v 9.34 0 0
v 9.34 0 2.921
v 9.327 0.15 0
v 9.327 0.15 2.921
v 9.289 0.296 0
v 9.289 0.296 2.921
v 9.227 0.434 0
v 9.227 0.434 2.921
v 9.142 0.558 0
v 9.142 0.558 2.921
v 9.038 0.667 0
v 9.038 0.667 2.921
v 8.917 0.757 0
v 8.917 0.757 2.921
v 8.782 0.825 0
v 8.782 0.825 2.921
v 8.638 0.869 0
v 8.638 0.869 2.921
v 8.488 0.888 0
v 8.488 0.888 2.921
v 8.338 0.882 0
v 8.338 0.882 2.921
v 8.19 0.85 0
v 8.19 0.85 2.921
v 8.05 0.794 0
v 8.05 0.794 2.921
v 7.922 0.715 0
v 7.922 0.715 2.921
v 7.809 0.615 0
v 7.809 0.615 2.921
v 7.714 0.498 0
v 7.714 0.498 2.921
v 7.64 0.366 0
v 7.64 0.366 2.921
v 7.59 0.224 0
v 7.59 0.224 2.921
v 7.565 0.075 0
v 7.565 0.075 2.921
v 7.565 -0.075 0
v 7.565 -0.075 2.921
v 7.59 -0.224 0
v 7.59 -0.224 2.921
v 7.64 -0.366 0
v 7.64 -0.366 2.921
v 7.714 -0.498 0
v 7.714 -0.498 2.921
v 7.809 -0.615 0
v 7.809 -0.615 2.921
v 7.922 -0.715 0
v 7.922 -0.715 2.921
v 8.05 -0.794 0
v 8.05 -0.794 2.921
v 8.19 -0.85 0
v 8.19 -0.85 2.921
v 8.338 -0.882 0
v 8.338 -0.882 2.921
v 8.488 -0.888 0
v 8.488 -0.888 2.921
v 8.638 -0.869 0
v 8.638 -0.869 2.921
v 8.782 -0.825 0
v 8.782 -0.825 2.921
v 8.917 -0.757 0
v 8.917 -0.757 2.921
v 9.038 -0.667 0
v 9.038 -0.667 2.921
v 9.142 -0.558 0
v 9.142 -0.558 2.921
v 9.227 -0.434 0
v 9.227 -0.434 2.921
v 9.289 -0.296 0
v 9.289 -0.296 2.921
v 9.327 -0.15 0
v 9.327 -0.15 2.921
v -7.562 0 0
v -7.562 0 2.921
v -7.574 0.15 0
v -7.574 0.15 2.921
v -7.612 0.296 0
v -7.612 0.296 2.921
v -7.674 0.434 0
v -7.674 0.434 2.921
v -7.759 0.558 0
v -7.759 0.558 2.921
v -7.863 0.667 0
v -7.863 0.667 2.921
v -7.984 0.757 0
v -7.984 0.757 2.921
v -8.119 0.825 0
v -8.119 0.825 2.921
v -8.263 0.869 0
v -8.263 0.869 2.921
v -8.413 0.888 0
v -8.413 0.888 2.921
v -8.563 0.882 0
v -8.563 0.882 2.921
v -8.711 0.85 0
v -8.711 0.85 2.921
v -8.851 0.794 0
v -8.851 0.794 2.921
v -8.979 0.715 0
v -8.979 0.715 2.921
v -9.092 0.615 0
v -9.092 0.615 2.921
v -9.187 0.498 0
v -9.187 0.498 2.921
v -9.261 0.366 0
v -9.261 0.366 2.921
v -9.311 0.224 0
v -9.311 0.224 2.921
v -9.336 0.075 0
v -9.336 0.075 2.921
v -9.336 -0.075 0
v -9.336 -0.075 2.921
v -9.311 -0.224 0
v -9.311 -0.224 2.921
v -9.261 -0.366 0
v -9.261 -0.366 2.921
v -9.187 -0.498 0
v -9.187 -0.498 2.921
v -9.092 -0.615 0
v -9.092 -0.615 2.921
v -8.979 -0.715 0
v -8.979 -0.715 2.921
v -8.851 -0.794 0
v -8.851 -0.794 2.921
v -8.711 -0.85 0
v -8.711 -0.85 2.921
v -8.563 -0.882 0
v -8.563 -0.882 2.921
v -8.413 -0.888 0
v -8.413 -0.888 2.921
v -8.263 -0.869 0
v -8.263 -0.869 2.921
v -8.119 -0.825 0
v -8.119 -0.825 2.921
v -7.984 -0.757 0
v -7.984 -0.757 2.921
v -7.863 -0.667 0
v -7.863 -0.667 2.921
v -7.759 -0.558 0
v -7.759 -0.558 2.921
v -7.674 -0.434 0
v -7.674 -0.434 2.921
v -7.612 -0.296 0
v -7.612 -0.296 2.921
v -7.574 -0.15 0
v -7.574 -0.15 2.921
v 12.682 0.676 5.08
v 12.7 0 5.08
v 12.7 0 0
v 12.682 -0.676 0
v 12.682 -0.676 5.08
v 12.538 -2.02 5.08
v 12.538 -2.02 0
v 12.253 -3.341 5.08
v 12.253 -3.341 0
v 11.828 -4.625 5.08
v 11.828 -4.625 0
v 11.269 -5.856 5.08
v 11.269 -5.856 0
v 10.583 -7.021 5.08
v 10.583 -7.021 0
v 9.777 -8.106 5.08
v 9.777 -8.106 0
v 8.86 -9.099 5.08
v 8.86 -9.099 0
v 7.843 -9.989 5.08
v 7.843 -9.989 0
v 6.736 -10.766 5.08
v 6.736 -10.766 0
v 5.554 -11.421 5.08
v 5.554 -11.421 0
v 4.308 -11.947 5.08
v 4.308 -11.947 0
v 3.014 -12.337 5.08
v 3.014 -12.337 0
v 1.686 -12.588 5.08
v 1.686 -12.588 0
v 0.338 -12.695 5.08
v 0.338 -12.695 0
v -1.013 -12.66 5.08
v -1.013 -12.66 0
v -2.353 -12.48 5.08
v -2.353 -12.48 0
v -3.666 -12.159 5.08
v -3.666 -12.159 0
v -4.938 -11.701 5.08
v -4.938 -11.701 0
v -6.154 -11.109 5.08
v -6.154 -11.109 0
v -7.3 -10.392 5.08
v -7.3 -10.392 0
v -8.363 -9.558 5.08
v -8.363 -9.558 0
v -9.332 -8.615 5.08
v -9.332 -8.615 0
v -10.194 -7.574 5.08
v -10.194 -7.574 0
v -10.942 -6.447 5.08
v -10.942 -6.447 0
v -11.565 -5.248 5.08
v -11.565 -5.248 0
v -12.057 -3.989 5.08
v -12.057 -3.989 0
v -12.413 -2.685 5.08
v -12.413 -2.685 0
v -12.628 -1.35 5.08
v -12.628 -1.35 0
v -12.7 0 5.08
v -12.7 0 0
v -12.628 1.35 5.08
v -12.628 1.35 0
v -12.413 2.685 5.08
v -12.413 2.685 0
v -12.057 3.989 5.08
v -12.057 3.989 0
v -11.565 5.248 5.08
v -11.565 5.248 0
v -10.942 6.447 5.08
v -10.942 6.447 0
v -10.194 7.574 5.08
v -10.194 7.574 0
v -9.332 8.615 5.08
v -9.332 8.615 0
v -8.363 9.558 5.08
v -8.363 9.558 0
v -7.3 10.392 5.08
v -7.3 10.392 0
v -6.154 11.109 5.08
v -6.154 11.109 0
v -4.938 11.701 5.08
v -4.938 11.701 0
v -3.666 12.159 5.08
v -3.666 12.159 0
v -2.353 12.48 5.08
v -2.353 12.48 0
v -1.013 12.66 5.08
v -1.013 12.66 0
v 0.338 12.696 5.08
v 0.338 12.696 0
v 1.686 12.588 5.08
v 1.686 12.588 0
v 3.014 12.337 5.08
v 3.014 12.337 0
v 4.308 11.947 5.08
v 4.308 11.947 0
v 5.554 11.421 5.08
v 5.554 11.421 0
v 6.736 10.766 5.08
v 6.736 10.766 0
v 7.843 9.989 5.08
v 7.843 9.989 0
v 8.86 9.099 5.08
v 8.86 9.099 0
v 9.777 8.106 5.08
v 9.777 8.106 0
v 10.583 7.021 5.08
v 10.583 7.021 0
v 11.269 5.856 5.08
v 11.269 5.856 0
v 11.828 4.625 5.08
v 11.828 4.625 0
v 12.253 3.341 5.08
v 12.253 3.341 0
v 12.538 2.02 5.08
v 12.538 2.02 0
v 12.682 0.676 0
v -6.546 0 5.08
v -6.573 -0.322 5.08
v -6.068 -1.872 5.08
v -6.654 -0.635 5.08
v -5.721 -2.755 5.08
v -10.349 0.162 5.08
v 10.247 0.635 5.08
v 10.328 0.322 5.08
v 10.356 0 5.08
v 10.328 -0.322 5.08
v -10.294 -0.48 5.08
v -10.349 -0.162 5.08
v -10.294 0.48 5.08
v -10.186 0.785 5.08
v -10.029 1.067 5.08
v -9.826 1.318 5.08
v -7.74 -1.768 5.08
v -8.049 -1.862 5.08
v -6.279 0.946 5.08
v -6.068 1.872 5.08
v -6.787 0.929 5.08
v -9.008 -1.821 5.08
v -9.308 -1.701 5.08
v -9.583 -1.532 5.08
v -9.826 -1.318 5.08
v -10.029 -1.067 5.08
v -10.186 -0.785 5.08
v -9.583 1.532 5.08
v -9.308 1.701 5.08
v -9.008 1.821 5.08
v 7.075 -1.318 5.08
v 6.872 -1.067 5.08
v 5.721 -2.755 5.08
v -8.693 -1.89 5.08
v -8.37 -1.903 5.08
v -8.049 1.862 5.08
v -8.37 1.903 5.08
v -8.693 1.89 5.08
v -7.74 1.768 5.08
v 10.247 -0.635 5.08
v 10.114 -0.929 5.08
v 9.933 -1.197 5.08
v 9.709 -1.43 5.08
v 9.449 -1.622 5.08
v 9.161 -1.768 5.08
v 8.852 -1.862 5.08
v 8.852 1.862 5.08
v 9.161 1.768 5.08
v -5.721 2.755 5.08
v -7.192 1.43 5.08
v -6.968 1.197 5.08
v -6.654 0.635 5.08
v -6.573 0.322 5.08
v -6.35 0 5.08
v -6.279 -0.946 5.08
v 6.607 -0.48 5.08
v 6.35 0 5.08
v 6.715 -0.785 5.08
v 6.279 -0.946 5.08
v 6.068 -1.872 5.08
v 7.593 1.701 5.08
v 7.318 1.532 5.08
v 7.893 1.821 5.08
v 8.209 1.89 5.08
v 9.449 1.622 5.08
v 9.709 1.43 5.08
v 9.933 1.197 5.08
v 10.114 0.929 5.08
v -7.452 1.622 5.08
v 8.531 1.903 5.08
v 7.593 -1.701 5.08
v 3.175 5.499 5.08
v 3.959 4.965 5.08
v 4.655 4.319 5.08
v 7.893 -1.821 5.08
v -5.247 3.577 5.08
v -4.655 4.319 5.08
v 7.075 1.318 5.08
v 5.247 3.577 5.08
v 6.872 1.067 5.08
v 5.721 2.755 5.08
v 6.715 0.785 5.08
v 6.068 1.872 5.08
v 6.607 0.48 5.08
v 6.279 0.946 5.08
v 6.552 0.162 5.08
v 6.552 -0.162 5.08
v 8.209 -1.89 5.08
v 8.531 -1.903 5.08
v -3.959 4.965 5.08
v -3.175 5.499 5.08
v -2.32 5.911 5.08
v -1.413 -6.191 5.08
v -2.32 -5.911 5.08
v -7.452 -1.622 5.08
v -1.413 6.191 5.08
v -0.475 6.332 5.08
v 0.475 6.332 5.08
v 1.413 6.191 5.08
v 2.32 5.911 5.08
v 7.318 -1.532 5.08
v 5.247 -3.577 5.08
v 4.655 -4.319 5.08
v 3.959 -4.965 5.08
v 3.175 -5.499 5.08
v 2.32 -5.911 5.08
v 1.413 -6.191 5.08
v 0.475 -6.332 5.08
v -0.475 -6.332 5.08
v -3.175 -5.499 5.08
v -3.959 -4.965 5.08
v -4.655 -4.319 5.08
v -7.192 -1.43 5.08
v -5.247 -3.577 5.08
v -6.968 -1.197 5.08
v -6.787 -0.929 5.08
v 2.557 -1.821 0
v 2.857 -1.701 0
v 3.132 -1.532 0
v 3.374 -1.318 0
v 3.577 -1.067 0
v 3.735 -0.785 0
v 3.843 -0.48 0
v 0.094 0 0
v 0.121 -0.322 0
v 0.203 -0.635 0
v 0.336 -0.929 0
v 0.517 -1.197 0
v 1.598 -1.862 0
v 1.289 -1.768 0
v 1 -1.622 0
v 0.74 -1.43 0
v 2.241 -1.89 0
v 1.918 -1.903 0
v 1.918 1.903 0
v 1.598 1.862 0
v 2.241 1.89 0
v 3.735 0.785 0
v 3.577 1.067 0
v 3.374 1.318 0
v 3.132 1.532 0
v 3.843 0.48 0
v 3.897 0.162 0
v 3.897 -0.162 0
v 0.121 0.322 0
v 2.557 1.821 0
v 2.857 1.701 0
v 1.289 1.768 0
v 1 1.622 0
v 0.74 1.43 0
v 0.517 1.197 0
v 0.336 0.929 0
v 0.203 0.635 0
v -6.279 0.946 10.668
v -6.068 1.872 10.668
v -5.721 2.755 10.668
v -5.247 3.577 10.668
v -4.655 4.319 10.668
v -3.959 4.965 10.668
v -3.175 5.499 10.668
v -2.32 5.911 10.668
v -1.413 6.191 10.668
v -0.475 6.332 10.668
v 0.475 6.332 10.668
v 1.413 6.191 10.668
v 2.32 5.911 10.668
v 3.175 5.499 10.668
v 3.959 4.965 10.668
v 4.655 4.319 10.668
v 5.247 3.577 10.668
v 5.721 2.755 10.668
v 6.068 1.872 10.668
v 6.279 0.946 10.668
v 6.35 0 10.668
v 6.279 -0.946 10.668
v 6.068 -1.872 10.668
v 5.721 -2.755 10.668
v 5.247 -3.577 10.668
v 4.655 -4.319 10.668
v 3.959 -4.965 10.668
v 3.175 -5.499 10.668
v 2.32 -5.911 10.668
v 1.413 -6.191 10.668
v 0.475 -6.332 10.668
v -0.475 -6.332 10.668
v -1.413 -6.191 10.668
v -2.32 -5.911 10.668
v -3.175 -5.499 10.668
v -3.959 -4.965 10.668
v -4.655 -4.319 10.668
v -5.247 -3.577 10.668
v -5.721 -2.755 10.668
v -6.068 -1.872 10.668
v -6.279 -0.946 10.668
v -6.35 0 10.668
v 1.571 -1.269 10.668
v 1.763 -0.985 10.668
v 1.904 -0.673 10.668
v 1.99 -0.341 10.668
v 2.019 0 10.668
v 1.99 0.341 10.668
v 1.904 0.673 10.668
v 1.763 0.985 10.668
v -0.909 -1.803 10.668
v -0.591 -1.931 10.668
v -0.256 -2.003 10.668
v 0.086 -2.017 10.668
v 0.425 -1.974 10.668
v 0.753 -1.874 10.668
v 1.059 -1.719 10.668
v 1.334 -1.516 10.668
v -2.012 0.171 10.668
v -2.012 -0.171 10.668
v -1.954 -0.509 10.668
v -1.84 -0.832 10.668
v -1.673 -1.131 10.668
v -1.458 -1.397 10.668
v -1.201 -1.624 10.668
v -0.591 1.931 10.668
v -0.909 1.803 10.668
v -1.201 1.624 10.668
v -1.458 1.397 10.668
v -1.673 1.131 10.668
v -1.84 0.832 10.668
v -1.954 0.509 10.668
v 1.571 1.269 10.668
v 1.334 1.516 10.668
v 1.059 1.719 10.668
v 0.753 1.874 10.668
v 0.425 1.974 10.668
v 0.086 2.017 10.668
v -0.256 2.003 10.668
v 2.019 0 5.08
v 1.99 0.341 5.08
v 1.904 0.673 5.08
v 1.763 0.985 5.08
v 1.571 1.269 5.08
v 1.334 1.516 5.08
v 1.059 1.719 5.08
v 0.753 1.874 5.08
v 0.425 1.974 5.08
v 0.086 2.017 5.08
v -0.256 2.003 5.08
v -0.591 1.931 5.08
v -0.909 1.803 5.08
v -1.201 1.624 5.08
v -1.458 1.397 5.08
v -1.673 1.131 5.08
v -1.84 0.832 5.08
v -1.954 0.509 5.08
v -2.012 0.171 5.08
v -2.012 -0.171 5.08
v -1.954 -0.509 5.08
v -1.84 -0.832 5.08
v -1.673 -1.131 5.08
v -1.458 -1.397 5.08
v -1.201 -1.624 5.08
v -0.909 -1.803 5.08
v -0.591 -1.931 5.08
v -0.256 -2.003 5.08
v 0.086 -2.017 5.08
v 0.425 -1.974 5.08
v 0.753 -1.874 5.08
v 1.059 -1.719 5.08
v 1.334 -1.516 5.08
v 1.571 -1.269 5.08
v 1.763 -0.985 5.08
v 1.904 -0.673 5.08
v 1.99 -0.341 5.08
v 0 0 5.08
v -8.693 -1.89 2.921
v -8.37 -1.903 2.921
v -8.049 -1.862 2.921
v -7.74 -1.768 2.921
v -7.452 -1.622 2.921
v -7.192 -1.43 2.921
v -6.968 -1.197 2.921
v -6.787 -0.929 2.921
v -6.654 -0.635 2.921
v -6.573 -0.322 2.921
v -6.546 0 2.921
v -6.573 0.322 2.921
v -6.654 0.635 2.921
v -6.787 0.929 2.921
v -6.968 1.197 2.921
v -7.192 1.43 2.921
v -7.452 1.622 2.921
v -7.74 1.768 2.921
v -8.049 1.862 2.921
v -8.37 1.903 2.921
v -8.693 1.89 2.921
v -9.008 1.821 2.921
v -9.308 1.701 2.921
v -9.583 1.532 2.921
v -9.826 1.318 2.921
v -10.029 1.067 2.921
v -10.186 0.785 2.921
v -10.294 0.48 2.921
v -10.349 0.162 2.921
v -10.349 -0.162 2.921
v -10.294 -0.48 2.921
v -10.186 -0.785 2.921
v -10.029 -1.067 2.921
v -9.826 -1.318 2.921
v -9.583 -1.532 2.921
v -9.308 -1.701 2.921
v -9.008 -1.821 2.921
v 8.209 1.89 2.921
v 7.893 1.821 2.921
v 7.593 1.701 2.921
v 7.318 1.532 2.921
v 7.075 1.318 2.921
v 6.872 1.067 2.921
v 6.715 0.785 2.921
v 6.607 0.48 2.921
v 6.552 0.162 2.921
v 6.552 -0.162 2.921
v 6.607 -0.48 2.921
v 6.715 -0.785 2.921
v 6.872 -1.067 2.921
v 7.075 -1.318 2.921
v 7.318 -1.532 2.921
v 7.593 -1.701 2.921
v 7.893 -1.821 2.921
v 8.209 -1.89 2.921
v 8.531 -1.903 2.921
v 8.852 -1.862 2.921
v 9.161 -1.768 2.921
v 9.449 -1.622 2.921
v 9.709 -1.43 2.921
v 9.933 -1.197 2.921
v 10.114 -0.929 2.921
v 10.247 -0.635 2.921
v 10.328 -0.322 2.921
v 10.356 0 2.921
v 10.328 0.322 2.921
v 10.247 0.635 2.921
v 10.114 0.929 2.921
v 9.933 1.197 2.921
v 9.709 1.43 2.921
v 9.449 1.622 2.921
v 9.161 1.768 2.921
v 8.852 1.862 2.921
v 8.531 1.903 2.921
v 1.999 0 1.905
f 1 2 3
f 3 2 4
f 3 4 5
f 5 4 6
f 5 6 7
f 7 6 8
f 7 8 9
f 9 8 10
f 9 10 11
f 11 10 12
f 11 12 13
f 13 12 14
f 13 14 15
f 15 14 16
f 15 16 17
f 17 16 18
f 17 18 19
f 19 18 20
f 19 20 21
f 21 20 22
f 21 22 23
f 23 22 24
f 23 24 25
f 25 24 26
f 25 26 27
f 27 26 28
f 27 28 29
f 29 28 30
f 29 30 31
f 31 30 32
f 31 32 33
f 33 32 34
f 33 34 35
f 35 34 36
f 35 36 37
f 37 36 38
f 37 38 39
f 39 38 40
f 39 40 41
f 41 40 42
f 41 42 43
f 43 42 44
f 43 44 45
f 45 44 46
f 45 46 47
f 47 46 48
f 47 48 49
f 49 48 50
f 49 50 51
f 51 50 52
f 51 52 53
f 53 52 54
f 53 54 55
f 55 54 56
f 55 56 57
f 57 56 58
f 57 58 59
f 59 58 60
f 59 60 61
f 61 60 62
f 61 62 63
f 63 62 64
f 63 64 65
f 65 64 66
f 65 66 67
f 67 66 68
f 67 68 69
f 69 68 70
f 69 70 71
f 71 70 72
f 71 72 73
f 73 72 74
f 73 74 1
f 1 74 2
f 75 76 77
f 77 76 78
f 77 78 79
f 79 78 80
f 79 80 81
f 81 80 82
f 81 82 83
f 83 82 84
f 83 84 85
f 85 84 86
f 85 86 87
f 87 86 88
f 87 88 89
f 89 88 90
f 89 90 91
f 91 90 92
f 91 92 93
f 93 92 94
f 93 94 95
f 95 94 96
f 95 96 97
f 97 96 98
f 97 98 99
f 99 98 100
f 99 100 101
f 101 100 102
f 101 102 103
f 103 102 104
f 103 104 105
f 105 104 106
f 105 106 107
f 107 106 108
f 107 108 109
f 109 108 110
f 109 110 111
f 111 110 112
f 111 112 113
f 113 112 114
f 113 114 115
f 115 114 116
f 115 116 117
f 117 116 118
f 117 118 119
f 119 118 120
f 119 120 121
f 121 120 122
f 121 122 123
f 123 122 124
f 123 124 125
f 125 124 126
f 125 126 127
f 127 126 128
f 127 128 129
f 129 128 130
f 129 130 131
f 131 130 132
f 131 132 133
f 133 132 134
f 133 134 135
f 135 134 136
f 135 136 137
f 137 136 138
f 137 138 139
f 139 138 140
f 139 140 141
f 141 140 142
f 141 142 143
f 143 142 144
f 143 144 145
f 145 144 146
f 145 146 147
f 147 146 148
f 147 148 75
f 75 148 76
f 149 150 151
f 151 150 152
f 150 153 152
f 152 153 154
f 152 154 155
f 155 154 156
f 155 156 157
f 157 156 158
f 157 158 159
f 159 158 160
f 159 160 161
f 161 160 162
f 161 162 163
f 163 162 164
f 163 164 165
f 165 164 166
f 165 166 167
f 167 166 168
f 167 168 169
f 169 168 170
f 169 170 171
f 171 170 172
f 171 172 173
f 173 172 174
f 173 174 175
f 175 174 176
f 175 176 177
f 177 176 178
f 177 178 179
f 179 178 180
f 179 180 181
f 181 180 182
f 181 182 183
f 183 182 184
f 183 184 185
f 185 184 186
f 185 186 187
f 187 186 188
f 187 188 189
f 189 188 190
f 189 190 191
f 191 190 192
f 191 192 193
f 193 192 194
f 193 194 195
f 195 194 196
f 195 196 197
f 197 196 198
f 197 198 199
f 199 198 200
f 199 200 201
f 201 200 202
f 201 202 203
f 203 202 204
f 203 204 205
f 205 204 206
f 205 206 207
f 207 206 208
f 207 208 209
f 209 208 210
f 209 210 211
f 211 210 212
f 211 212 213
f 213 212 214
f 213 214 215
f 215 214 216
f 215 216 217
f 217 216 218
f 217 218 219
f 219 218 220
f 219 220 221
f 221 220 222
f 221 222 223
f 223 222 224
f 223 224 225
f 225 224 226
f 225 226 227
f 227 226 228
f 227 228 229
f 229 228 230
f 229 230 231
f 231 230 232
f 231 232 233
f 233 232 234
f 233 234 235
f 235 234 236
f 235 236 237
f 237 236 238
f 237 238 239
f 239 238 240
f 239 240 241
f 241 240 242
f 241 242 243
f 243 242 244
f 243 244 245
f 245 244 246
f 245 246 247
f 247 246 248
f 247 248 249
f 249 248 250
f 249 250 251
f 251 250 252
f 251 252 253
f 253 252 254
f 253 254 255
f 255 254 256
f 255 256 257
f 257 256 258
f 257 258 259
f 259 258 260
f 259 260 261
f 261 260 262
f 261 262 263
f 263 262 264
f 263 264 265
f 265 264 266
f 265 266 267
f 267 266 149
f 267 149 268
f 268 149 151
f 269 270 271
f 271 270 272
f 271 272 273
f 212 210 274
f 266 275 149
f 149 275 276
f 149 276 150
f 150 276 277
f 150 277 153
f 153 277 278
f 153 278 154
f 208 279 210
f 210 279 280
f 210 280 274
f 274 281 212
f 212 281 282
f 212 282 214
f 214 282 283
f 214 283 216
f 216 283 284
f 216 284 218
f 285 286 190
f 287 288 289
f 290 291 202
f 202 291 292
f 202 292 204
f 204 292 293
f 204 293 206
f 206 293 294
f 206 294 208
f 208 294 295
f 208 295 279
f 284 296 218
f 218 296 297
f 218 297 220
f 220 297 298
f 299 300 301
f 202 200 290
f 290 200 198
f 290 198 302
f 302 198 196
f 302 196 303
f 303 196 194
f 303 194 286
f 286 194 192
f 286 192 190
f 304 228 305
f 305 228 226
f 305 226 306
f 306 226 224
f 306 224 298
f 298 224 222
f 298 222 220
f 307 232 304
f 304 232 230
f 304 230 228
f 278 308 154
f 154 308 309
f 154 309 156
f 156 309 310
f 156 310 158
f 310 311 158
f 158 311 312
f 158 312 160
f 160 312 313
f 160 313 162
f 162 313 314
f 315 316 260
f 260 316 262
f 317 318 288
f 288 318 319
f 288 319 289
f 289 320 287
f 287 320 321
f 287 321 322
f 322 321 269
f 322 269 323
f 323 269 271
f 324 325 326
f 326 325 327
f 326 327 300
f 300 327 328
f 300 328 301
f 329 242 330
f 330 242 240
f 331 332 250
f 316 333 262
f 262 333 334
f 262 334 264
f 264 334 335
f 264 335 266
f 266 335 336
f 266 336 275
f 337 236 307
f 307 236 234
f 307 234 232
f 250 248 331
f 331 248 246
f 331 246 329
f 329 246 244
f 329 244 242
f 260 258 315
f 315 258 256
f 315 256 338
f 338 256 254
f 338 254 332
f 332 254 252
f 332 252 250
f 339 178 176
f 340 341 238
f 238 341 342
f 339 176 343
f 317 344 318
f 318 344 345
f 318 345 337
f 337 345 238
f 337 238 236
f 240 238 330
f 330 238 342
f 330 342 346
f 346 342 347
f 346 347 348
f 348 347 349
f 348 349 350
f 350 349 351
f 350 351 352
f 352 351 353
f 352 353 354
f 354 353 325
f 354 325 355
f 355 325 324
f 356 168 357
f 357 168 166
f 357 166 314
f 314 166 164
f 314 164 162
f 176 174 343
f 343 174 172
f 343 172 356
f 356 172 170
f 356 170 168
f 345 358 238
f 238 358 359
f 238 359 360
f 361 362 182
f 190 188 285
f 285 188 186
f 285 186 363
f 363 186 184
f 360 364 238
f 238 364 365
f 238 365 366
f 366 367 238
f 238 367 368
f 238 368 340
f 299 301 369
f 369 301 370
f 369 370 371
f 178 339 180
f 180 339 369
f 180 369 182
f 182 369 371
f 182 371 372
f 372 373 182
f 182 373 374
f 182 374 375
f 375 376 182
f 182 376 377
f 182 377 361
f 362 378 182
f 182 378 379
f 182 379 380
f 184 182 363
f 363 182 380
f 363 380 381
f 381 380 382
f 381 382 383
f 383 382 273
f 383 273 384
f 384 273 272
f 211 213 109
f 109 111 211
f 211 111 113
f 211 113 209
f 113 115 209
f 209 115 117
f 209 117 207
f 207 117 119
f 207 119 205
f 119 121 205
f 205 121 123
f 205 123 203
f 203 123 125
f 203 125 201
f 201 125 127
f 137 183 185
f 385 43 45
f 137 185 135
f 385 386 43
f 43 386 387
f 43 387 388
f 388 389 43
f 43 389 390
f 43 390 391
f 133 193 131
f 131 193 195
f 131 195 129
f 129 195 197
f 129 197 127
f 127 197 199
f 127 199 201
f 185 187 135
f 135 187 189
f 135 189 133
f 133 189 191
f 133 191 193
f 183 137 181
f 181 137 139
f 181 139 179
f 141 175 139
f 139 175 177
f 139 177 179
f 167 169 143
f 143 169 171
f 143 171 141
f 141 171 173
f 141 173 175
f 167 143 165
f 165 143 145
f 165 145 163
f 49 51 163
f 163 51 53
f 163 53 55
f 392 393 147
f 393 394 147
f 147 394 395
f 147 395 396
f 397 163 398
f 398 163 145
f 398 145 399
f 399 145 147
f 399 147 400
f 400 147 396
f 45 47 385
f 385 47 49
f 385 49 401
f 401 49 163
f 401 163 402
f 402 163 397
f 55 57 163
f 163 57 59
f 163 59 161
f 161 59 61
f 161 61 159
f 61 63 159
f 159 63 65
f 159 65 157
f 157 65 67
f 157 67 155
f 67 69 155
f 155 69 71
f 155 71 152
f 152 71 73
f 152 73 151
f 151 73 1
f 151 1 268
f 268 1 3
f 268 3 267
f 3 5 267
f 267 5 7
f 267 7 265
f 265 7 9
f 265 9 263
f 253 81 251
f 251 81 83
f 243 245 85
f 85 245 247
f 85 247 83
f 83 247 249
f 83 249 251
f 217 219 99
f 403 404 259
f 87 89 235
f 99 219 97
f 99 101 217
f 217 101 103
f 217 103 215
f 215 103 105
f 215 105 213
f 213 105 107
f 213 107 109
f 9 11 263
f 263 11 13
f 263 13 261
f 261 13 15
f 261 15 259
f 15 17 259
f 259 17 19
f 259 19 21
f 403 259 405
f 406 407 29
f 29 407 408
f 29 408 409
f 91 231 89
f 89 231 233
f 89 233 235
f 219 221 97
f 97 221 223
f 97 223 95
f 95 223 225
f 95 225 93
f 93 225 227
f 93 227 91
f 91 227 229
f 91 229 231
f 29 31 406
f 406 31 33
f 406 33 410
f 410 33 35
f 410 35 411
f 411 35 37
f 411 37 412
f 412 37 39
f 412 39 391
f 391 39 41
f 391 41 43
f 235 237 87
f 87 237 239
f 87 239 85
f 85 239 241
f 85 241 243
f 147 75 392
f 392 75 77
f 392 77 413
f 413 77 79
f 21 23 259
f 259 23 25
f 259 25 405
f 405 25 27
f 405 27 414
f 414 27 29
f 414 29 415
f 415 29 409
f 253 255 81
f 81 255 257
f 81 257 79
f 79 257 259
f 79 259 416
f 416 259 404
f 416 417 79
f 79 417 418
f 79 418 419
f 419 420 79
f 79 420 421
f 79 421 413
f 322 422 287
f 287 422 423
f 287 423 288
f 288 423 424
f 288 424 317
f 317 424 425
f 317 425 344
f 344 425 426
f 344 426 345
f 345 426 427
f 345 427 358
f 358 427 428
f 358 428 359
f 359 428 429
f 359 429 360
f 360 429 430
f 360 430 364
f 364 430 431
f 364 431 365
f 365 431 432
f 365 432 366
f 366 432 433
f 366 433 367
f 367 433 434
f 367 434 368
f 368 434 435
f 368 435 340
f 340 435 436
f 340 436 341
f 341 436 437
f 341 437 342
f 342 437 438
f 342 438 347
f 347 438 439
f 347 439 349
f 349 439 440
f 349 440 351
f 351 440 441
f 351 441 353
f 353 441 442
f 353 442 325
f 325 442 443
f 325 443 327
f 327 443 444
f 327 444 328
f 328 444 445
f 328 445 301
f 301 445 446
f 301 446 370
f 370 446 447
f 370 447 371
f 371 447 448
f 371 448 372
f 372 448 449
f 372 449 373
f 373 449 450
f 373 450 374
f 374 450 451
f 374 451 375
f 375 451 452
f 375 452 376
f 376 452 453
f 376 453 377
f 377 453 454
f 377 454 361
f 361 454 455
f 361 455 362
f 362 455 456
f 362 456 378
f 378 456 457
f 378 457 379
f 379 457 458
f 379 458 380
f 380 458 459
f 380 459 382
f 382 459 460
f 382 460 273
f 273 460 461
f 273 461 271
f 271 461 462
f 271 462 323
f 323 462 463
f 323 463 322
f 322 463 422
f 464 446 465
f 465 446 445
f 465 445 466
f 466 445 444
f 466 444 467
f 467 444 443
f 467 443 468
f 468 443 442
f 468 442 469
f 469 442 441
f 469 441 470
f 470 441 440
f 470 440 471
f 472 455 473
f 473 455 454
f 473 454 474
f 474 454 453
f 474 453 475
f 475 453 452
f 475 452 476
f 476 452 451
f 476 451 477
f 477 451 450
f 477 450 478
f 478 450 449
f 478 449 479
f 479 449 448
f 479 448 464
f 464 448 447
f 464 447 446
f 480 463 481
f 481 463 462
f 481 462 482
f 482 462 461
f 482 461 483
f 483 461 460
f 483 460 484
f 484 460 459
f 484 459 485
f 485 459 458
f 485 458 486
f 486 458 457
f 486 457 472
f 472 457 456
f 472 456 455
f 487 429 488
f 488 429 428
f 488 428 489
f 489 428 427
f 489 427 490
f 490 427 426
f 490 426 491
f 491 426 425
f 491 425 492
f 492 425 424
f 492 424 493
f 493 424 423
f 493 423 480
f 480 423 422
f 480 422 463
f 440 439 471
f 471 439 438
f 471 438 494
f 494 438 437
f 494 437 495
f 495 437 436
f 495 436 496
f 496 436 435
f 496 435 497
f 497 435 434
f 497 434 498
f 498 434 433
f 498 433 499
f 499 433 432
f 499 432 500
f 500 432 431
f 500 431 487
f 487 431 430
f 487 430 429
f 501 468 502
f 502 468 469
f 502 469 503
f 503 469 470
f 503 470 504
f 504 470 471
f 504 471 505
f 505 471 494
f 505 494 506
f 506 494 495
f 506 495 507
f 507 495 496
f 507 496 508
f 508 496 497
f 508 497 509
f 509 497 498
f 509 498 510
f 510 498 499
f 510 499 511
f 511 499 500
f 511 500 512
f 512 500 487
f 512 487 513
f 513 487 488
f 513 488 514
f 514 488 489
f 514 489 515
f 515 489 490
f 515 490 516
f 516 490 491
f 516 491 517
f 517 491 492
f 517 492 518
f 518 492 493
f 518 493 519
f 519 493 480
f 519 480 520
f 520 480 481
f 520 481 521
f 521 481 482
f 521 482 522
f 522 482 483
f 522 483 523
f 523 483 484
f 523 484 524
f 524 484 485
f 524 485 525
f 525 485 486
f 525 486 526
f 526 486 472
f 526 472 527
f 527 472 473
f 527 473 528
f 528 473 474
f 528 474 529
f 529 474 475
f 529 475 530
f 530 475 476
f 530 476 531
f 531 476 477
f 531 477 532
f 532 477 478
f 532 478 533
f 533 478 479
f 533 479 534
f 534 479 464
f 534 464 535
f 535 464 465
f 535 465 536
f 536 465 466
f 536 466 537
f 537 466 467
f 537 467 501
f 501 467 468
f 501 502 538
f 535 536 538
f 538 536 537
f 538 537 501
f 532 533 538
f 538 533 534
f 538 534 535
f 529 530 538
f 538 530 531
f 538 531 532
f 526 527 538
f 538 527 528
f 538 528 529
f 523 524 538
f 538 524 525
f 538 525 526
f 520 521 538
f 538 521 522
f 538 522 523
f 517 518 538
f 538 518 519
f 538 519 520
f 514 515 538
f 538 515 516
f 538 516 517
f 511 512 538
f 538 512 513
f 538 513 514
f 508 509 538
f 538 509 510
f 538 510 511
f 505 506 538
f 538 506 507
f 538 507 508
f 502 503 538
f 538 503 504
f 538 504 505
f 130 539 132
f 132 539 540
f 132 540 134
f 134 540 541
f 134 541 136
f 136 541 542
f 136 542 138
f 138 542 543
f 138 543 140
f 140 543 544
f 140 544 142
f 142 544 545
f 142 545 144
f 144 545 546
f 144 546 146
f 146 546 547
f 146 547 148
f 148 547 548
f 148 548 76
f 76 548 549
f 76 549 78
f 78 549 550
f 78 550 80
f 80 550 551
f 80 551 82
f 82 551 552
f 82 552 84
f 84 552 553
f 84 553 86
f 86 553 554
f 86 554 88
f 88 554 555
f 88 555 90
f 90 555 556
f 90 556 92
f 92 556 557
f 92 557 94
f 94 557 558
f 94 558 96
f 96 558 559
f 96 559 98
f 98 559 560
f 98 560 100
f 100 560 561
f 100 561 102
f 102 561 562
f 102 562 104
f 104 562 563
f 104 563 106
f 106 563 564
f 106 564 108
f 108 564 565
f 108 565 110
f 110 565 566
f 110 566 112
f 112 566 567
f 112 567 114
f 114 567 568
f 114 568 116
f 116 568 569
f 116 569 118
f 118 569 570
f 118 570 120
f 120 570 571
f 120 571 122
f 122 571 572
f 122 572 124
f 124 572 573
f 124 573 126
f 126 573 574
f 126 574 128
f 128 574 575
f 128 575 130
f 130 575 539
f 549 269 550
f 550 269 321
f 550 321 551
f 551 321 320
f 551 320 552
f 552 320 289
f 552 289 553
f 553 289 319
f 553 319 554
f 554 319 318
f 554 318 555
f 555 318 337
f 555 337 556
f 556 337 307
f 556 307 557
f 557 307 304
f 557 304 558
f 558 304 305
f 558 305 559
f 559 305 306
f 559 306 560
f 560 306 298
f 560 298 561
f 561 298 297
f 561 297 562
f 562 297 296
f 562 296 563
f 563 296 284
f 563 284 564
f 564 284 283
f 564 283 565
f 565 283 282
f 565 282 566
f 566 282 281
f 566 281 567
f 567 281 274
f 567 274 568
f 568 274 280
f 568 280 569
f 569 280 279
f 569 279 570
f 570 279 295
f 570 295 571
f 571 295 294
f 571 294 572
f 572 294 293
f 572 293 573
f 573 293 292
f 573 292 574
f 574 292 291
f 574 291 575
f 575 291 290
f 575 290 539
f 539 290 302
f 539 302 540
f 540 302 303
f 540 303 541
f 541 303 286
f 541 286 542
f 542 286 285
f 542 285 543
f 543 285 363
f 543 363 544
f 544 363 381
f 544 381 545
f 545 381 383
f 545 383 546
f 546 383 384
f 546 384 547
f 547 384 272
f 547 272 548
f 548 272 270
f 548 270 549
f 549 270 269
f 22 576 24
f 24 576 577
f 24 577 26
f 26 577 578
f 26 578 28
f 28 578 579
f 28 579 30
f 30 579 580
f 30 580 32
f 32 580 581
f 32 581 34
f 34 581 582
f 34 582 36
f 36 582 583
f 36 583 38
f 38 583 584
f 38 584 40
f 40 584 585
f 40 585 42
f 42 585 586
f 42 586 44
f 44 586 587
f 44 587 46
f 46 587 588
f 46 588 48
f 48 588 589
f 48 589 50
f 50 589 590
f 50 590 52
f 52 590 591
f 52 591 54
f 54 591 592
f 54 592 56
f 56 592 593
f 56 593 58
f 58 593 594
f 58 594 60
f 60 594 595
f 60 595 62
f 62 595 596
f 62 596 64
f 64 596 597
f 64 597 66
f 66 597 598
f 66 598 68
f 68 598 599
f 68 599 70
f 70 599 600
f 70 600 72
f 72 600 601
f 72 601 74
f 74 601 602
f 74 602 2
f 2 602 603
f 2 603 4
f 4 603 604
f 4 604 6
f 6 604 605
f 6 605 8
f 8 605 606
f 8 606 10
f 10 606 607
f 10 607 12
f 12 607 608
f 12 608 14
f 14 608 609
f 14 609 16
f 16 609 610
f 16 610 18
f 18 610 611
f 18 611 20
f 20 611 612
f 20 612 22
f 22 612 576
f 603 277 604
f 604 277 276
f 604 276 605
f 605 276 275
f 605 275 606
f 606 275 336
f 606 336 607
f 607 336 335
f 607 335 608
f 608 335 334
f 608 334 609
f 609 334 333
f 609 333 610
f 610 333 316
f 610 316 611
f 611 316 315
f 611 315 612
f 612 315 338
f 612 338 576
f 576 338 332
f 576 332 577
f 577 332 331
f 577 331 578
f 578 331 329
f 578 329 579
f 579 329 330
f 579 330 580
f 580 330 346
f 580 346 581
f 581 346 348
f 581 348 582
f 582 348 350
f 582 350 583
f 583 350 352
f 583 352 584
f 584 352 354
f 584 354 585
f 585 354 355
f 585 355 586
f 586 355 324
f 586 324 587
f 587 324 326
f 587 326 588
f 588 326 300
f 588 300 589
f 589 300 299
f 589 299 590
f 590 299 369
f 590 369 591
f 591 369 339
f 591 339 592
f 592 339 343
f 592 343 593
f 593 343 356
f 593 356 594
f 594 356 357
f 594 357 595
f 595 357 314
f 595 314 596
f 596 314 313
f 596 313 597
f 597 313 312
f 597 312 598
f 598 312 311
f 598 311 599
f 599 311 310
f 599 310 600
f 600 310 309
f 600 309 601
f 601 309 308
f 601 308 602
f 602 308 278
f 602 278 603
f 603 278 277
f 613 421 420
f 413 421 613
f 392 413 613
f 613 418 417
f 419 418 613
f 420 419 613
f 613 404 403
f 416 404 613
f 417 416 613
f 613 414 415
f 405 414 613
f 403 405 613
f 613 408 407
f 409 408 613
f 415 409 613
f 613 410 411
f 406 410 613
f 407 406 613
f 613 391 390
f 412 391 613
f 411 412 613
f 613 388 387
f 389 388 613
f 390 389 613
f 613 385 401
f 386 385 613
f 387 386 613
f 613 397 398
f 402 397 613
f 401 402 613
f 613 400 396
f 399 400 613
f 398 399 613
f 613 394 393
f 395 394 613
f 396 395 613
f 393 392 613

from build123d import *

# Parameters (mm, degrees)
SKETCH1_R                  = 12.7
BOSS_EXTRUDE1_DEPTH        = 5.08
SKETCH3_R                  = 6.35
BOSS_EXTRUDE2_DEPTH        = 5.588
SKETCH5_R                  = 2.0193
CUT_EXTRUDE1_DEPTH         = 5.588
F_50_0_07_DIAMETER_HOLE1_D = 1.778
SKETCH6_R                  = 1.905
CUT_EXTRUDE2_DEPTH         = 2.159


with BuildPart() as part:
    # Sketch1 → Boss-Extrude1 (new body)
    with BuildSketch(Plane.XY):
        Circle(SKETCH1_R)
    extrude(amount=BOSS_EXTRUDE1_DEPTH)

    # Sketch3 → Boss-Extrude2 (add)
    with BuildSketch(Plane.XY.offset(5.08)):
        Circle(SKETCH3_R)
    extrude(amount=BOSS_EXTRUDE2_DEPTH)

    # Sketch5 → Cut-Extrude1 (cut)
    with BuildSketch(Plane.XY.offset(10.668)):
        Circle(SKETCH5_R)
    extrude(amount=-CUT_EXTRUDE1_DEPTH, mode=Mode.SUBTRACT)

    # #50 (0.07) Diameter Hole1 (through all)
    with Locations(Plane.XY.offset(5.08)):
        with Locations((-8.45058, 0), (8.45058, 0)):
            Hole(F_50_0_07_DIAMETER_HOLE1_D / 2)

    # Sketch6 → Cut-Extrude2 (cut)
    with BuildSketch(Plane.XY.offset(5.08)):
        with Locations((-8.45058, 0)):
            Circle(SKETCH6_R)
        with Locations((8.45058, 0)):
            Circle(SKETCH6_R)
    extrude(amount=-CUT_EXTRUDE2_DEPTH, mode=Mode.SUBTRACT)

    # Cut-Extrude3 cone 1 section (through the dimple's axis) → Cut-Extrude3 (revolve, cut)
    with BuildSketch(Plane.YZ.offset(1.99898)):
        Polygon((0, 0), (1.905, 0), (0, 1.905), align=None)
    revolve(axis=Axis((1.99898, 0, 0), (0, 0, 1)), mode=Mode.SUBTRACT)


solid = part.part
